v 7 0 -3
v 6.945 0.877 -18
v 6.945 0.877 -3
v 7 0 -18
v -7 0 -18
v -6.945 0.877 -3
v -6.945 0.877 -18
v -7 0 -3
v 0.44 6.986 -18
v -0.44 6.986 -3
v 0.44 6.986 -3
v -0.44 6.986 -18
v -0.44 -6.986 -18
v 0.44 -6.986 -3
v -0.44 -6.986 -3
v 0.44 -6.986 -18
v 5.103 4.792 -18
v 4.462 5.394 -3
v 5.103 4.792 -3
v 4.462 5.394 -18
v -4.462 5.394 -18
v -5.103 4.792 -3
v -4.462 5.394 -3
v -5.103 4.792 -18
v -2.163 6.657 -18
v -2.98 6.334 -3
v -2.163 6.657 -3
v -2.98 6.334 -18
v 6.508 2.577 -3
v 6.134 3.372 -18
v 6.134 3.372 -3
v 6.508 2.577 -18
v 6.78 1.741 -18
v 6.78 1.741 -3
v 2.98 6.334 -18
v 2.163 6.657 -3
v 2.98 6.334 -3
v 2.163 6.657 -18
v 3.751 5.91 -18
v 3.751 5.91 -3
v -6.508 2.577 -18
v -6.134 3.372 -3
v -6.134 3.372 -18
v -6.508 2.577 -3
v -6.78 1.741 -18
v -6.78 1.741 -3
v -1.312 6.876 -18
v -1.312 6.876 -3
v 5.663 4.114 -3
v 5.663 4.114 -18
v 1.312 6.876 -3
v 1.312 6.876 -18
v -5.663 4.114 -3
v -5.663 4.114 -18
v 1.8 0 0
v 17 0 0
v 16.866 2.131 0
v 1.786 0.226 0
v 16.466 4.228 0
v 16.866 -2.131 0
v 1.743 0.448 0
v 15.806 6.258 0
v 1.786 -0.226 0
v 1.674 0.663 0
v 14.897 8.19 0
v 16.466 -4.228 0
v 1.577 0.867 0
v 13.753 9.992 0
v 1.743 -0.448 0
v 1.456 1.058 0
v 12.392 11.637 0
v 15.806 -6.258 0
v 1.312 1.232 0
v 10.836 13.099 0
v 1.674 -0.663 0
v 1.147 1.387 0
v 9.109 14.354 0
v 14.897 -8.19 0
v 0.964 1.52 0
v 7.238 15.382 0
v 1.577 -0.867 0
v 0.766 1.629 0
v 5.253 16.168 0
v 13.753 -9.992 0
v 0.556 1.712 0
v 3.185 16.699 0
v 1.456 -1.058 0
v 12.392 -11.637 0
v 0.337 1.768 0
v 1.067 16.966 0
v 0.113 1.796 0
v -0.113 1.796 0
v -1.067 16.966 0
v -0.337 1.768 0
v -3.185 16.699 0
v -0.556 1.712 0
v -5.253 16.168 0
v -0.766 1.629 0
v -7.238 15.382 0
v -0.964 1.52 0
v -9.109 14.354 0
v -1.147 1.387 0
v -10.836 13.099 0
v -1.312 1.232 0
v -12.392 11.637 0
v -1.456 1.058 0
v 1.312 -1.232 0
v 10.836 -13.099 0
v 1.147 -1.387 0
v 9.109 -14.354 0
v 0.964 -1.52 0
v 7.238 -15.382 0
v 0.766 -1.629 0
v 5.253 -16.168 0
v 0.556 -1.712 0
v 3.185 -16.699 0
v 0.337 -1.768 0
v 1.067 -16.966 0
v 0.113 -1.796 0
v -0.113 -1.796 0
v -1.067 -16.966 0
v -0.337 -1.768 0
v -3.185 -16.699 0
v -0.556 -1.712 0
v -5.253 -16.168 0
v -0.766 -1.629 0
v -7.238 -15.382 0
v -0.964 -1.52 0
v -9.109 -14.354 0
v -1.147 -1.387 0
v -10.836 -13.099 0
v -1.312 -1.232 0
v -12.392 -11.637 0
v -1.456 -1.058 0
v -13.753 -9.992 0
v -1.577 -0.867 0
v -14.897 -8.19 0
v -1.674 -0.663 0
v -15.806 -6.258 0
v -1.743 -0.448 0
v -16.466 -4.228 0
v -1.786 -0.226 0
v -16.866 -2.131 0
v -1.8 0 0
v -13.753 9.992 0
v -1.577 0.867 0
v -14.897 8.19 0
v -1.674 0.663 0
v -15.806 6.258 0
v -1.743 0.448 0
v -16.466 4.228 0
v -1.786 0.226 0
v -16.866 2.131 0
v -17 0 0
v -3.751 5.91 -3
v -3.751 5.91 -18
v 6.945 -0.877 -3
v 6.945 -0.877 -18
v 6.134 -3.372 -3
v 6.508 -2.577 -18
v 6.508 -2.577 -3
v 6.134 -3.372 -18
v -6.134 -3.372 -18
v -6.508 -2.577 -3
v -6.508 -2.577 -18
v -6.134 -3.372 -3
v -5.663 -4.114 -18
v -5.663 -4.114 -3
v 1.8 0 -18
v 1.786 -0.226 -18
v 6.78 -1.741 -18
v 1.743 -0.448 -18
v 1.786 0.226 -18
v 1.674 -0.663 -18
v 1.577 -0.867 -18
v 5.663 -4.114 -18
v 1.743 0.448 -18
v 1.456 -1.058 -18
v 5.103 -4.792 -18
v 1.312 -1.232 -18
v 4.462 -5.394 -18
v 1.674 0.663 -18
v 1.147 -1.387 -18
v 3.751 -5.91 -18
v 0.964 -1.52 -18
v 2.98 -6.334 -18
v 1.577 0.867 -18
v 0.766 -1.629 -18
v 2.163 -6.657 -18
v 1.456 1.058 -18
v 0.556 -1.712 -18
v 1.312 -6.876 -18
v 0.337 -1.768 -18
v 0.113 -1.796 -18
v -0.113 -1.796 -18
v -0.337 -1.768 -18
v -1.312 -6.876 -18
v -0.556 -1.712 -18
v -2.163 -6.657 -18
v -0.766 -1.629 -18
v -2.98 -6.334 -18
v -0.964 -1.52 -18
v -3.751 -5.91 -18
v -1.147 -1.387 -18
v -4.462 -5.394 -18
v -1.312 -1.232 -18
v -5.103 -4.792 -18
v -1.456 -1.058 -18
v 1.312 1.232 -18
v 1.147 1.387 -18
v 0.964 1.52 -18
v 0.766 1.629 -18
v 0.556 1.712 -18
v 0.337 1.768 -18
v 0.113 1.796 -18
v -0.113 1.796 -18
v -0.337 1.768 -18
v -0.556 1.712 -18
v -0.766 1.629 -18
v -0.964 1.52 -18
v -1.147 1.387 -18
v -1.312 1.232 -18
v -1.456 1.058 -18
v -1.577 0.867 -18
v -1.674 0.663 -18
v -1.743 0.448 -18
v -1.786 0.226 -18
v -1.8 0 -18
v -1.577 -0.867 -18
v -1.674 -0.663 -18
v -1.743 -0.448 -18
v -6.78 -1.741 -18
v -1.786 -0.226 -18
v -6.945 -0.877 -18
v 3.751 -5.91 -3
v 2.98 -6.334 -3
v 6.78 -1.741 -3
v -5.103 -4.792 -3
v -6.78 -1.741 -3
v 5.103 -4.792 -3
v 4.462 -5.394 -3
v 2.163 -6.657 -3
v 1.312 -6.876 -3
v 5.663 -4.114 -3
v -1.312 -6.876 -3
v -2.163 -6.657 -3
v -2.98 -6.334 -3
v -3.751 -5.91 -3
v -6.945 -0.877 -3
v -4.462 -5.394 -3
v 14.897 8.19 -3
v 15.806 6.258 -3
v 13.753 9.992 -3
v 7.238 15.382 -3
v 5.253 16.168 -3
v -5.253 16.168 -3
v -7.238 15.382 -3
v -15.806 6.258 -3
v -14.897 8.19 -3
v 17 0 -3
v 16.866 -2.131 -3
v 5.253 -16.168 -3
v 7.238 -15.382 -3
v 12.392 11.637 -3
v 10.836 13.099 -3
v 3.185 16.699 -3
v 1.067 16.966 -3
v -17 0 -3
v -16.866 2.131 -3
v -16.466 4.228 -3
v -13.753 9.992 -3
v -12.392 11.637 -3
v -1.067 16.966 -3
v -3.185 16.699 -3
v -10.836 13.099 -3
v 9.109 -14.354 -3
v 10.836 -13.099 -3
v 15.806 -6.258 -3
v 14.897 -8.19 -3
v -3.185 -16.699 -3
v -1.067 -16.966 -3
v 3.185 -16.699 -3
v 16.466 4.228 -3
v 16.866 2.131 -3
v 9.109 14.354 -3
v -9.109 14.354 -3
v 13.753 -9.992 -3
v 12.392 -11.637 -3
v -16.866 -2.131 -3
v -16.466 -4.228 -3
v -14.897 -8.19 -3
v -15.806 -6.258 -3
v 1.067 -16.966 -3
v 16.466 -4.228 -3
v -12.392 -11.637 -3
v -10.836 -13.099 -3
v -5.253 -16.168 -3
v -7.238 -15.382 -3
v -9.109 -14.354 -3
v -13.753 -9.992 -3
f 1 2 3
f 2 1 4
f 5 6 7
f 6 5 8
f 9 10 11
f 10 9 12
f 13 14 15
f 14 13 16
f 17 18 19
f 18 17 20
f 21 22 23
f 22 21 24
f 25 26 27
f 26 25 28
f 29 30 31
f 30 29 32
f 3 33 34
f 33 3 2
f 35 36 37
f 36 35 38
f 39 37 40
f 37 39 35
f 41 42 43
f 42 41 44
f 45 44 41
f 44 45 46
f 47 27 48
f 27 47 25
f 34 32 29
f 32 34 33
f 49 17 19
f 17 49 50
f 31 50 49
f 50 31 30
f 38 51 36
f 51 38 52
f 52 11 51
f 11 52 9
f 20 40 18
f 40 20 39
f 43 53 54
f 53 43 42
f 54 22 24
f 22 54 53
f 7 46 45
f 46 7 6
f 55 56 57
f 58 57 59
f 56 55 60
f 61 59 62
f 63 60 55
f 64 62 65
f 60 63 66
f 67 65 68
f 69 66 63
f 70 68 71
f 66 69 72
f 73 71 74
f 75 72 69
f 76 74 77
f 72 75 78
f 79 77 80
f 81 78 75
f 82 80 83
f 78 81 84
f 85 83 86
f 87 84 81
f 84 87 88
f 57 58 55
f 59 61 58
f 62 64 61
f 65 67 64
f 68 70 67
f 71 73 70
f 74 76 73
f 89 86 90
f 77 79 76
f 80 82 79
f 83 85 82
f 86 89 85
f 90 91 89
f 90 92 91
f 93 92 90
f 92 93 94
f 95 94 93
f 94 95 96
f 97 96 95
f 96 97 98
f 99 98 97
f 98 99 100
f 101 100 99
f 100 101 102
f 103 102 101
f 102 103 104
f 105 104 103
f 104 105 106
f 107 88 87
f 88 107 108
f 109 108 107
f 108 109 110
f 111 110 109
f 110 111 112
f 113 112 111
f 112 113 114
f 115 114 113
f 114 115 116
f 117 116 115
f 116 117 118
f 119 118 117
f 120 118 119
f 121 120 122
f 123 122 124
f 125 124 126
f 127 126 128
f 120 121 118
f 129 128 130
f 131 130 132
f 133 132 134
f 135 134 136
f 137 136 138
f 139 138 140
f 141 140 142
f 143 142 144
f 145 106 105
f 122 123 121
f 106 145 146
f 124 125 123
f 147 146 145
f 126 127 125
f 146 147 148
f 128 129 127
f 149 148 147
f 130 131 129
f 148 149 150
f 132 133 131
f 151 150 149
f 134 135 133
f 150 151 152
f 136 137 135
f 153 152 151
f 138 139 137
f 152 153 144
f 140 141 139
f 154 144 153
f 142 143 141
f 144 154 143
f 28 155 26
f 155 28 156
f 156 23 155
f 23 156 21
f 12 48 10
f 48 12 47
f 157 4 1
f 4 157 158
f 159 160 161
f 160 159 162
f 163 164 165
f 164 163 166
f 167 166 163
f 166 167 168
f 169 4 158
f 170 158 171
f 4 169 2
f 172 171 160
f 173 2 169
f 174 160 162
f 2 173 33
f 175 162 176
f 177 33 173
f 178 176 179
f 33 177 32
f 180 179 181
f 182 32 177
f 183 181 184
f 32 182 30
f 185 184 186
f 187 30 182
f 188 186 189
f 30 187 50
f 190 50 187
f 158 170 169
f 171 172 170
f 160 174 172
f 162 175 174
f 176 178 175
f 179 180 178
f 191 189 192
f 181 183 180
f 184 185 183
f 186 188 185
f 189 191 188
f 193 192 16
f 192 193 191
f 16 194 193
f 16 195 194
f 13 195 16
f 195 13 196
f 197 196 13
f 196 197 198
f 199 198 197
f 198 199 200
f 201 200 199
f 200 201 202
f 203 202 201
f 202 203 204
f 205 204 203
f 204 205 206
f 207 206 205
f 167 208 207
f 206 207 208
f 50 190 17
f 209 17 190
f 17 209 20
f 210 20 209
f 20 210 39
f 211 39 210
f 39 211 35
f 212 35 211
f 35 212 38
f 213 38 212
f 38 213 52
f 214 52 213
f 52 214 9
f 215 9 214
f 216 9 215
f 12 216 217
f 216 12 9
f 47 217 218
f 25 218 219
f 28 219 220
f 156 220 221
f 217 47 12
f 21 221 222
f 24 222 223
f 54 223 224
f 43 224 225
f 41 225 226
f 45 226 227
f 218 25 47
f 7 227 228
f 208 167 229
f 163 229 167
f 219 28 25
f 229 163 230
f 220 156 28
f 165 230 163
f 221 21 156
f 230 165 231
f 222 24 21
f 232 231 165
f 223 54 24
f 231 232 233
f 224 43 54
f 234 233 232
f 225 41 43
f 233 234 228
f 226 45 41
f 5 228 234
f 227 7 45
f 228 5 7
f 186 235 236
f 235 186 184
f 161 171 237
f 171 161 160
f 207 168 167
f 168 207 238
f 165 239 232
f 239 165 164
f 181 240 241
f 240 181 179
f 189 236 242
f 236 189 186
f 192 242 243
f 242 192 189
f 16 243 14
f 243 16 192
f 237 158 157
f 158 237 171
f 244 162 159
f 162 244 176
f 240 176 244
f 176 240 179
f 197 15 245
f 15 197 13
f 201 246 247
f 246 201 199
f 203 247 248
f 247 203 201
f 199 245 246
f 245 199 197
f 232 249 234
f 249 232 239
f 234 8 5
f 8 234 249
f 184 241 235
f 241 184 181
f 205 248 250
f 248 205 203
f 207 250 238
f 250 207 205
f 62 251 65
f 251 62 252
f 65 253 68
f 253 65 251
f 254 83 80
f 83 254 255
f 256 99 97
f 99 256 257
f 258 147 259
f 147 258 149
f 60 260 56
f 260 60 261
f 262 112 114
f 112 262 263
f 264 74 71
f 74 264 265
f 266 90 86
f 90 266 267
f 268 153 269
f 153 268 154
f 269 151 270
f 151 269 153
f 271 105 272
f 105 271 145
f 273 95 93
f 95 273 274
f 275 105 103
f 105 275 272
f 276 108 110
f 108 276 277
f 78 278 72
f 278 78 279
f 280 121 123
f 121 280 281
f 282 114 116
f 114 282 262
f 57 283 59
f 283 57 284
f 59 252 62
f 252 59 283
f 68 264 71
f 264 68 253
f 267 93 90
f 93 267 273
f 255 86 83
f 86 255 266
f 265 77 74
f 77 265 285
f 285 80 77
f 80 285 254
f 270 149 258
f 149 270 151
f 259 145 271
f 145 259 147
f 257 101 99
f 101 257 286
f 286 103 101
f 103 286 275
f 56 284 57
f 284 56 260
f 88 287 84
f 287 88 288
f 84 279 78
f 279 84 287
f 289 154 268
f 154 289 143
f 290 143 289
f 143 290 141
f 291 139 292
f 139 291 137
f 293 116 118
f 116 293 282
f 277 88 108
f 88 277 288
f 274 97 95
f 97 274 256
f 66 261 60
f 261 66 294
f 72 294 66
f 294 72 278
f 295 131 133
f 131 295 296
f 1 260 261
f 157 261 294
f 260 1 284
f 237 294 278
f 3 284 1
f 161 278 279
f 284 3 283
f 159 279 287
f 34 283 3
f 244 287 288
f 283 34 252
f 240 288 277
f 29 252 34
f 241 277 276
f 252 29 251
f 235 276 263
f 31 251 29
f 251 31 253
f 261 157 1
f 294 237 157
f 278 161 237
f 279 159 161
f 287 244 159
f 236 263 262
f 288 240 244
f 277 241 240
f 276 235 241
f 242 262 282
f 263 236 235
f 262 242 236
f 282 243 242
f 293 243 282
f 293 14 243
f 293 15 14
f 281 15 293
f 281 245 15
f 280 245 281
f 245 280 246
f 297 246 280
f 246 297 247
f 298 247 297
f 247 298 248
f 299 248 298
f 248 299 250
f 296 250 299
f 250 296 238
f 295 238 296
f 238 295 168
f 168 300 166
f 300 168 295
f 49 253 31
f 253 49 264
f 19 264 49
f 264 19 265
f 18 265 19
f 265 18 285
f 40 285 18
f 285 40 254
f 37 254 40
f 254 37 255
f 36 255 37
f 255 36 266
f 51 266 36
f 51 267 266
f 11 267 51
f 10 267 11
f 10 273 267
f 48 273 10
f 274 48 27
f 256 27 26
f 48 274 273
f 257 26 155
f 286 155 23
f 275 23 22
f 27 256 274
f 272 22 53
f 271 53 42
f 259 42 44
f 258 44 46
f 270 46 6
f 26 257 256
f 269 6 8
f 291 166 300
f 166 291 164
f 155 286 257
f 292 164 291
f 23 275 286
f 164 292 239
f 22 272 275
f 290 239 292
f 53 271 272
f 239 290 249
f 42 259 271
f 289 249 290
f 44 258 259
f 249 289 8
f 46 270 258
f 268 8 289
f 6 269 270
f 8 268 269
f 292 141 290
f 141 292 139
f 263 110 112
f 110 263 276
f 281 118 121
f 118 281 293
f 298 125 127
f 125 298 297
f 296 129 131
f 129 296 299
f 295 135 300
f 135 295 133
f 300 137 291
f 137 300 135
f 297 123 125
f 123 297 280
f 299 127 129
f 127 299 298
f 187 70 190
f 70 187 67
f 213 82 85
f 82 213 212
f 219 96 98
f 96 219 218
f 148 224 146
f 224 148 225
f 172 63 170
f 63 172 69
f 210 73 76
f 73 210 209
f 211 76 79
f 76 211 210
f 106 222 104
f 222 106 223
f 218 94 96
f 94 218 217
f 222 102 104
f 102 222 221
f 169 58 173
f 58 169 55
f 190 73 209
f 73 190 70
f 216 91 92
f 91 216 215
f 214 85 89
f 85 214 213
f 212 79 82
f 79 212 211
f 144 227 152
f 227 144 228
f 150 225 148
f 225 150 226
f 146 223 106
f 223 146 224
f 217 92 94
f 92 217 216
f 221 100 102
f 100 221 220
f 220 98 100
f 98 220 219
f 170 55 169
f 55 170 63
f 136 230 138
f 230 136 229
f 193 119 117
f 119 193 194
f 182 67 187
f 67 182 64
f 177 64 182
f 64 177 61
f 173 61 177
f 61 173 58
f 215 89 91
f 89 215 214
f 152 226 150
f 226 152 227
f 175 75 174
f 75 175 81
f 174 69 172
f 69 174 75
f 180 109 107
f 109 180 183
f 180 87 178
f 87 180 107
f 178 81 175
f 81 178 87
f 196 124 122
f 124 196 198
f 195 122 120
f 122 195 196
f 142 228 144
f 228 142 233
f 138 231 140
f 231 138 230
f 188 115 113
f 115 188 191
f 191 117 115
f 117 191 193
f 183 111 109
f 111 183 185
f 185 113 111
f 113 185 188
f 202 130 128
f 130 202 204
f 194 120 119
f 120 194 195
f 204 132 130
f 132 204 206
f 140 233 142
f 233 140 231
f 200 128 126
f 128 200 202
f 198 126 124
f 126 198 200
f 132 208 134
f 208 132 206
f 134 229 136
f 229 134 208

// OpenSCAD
$fn = 50;


difference() {
	union() {
		translate(v = [0, 0, -18.0000000000]) {
			cylinder(h = 18, r = 7.0000000000);
		}
		translate(v = [0, 0, -3.0000000000]) {
			cylinder(h = 3, r = 17.0000000000);
		}
	}
	union() {
		#translate(v = [0, 0, -18]) {
			cylinder(h = 18, r = 1.8000000000);
		}
	}
}
